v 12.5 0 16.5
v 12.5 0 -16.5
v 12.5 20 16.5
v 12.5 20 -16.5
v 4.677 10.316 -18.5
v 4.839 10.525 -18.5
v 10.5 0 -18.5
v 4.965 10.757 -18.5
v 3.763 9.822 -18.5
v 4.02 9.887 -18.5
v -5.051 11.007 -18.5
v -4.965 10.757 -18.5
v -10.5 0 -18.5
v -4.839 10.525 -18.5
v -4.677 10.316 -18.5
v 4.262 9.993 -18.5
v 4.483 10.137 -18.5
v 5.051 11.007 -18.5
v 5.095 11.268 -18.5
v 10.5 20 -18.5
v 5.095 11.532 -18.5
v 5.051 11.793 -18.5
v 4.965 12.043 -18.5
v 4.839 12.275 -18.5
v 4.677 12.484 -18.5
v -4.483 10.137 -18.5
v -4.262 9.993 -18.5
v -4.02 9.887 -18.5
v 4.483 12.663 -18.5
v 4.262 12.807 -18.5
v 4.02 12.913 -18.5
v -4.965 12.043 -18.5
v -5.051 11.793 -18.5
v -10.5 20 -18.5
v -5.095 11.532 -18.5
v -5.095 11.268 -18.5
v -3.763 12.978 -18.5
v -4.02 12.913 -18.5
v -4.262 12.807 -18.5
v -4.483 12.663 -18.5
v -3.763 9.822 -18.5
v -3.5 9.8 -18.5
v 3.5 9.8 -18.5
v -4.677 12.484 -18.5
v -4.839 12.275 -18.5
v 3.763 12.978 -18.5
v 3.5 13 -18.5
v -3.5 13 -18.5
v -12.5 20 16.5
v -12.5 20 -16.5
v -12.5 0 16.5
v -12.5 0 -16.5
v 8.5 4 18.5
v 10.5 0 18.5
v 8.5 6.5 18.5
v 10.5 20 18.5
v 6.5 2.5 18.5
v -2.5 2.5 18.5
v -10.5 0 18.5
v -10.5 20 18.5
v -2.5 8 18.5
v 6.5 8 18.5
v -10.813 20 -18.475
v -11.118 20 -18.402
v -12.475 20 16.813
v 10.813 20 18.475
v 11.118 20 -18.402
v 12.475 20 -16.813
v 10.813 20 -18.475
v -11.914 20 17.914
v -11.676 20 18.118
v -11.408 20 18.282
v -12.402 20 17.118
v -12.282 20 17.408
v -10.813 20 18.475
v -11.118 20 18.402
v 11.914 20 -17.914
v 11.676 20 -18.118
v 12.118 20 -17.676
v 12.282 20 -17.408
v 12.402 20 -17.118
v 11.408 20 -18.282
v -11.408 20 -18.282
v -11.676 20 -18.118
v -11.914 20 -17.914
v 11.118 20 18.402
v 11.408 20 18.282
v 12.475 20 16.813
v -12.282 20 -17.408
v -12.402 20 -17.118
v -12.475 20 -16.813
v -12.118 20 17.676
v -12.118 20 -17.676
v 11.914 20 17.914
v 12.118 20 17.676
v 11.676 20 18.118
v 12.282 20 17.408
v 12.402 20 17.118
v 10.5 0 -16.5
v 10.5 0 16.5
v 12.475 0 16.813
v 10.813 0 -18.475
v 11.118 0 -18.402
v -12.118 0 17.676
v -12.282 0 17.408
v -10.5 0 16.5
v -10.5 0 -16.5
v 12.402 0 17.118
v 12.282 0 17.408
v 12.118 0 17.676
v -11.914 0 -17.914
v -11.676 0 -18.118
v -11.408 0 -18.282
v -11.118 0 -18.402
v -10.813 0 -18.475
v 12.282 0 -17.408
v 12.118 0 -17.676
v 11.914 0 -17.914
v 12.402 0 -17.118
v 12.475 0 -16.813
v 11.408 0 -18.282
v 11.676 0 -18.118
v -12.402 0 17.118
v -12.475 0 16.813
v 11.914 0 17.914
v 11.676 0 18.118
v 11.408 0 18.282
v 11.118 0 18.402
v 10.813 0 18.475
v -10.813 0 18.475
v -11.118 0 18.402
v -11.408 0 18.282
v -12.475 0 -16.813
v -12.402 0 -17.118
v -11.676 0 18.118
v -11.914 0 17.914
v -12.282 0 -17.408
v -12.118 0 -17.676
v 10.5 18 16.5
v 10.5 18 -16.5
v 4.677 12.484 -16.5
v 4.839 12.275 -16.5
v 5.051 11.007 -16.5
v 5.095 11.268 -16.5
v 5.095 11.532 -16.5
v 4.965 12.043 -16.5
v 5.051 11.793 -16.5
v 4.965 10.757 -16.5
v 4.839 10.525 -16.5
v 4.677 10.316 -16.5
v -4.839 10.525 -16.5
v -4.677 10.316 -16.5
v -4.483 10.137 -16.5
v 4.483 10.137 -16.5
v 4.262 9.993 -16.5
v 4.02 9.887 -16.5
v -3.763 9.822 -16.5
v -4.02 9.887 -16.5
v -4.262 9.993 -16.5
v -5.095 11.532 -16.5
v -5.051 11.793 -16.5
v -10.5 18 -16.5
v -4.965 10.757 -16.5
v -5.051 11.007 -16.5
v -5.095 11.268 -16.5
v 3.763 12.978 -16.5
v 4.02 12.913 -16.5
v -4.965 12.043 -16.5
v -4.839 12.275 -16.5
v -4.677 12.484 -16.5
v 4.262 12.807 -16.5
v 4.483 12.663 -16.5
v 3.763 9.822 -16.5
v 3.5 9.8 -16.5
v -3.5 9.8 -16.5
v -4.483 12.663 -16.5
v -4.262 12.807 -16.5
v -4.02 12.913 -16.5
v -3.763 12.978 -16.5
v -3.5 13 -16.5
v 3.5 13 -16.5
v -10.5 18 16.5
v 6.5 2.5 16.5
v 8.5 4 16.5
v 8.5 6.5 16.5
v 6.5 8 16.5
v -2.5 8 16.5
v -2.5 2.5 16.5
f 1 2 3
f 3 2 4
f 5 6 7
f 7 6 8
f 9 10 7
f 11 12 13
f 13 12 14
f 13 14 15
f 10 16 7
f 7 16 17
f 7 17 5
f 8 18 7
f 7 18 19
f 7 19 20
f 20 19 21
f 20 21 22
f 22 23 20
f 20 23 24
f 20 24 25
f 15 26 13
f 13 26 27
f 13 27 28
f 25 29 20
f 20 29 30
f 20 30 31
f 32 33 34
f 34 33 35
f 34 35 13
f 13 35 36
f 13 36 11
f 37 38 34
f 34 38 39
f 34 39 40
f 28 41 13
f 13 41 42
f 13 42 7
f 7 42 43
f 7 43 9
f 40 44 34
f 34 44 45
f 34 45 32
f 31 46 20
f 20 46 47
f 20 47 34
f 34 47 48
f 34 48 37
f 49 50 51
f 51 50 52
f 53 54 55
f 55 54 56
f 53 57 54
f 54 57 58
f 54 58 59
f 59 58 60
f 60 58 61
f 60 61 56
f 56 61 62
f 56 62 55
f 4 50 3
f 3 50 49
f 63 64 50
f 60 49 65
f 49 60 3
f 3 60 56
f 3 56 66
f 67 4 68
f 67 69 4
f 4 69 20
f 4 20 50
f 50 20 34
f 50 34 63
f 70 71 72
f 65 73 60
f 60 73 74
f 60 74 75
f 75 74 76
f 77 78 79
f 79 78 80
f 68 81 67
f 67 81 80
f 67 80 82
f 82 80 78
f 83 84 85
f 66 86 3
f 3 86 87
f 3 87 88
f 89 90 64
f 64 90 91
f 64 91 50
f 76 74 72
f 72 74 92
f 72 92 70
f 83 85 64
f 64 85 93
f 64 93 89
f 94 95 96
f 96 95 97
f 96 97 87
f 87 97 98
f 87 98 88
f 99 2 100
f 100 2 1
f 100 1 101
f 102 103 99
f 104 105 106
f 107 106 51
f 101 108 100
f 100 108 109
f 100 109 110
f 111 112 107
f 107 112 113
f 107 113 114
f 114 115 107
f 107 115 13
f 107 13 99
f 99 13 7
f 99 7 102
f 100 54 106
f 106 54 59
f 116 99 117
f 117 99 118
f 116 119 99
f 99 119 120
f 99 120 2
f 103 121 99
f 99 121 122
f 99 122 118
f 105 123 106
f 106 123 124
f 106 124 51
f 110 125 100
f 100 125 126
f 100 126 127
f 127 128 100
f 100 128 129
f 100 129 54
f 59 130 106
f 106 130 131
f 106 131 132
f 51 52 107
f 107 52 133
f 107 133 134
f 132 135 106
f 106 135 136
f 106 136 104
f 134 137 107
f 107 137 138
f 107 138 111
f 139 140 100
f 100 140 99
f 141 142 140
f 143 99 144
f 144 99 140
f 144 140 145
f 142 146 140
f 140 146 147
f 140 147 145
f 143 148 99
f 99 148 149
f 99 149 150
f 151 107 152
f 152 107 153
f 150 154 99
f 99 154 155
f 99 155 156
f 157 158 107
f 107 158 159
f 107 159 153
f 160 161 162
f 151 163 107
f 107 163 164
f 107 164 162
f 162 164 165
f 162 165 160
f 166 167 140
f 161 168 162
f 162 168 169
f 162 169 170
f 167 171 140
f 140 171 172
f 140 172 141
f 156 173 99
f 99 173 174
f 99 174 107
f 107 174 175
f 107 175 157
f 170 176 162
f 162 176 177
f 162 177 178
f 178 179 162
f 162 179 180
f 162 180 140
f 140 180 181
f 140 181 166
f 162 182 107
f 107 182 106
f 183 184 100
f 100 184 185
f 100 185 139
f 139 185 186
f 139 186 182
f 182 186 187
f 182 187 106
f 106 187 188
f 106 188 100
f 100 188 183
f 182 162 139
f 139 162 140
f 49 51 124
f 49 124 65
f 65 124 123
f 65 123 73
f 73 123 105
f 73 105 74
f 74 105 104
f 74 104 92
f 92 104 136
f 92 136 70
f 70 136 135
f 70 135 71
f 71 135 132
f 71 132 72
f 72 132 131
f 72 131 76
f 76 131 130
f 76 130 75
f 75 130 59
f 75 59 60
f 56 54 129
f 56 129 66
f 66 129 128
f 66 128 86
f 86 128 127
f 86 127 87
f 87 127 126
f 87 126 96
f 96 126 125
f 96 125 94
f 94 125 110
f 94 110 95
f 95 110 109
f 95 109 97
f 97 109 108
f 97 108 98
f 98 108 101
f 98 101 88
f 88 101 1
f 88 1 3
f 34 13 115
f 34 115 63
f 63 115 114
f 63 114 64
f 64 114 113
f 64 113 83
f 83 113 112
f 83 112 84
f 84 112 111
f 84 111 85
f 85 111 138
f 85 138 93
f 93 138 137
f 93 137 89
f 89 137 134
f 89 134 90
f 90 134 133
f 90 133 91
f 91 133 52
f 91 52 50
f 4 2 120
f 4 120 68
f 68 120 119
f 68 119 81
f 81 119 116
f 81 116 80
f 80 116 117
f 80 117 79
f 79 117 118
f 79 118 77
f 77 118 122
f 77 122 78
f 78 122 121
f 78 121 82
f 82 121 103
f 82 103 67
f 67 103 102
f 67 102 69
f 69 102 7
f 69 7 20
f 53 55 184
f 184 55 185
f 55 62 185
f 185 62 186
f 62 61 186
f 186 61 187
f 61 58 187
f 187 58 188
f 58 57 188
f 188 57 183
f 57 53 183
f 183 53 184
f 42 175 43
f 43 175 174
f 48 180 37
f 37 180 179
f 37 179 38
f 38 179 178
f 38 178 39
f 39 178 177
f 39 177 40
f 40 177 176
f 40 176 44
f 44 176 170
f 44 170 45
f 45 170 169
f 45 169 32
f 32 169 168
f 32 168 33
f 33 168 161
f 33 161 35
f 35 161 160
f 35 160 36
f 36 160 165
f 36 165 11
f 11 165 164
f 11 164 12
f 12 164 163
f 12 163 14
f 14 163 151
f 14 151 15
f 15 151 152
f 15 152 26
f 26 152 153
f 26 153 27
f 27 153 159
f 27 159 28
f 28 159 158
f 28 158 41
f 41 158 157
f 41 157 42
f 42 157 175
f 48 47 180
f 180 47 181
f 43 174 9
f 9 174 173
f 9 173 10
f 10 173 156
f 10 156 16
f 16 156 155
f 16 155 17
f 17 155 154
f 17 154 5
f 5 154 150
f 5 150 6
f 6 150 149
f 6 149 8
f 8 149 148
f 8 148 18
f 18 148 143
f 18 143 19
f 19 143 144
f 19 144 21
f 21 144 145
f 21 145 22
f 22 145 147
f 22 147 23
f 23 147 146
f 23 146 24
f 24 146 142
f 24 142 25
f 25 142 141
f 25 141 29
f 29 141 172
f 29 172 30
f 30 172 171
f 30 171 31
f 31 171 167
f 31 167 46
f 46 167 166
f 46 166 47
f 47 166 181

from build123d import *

# Parameters (mm, degrees)
SKETCH_1_W          = 25
SKETCH_1_H          = 37
EXTRUDE_1_DEPTH     = 20
SHELL_1_T           = -2
FILLET_1_R          = 2
CUT_EXTRUDE_1_DEPTH = 43.20485754
CUT_EXTRUDE_2_DEPTH = 43.20485754


with BuildPart() as part:
    # 草图1 → 凸台-拉伸1 (new body)
    with BuildSketch(Plane(origin=(0, 0, 0), x_dir=(1, 0, 0), z_dir=(0, 1, 0))):
        Rectangle(SKETCH_1_W, SKETCH_1_H)
    extrude(amount=EXTRUDE_1_DEPTH)

    # 抽壳1
    shell_1_openings = [part.faces().sort_by_distance(p)[0] for p in [
        (0, 0, 0),
    ]]
    offset(amount=SHELL_1_T, openings=shell_1_openings, kind=Kind.INTERSECTION)

    # 圆角1
    fillet_1_edges = [part.edges().sort_by_distance(p)[0] for p in [
        (12.5, 10, 18.5),
        (-12.5, 10, 18.5),
        (-12.5, 10, -18.5),
        (12.5, 10, -18.5),
    ]]
    fillet(fillet_1_edges, radius=FILLET_1_R)

    # 草图3 → 切除-拉伸1 (cut, through all)
    with BuildSketch(Plane(origin=(0, 0, 16.5), x_dir=(-1, 0, 0), z_dir=(0, 0, -1))):
        Polygon((2.5, 8), (-6.5, 8), (-8.5, 6.5), (-8.5, 4), (-6.5, 2.5), (2.5, 2.5), align=None)
    extrude(amount=-CUT_EXTRUDE_1_DEPTH, mode=Mode.SUBTRACT)

    # 草图3<3> → 切除-拉伸2 (cut, through all)
    with BuildSketch(Plane(origin=(0, 0, 16.5), x_dir=(-1, 0, 0), z_dir=(0, 0, -1))):
        with BuildLine():
            Line((-3.5, 9.8), (3.5, 9.8))
            ThreePointArc((3.5, 9.8), (5.1, 11.4), (3.5, 13))
            Line((3.5, 13), (-3.5, 13))
            ThreePointArc((-3.5, 13), (-5.1, 11.4), (-3.5, 9.8))
        make_face()
    extrude(amount=CUT_EXTRUDE_2_DEPTH, mode=Mode.SUBTRACT)


solid = part.part
